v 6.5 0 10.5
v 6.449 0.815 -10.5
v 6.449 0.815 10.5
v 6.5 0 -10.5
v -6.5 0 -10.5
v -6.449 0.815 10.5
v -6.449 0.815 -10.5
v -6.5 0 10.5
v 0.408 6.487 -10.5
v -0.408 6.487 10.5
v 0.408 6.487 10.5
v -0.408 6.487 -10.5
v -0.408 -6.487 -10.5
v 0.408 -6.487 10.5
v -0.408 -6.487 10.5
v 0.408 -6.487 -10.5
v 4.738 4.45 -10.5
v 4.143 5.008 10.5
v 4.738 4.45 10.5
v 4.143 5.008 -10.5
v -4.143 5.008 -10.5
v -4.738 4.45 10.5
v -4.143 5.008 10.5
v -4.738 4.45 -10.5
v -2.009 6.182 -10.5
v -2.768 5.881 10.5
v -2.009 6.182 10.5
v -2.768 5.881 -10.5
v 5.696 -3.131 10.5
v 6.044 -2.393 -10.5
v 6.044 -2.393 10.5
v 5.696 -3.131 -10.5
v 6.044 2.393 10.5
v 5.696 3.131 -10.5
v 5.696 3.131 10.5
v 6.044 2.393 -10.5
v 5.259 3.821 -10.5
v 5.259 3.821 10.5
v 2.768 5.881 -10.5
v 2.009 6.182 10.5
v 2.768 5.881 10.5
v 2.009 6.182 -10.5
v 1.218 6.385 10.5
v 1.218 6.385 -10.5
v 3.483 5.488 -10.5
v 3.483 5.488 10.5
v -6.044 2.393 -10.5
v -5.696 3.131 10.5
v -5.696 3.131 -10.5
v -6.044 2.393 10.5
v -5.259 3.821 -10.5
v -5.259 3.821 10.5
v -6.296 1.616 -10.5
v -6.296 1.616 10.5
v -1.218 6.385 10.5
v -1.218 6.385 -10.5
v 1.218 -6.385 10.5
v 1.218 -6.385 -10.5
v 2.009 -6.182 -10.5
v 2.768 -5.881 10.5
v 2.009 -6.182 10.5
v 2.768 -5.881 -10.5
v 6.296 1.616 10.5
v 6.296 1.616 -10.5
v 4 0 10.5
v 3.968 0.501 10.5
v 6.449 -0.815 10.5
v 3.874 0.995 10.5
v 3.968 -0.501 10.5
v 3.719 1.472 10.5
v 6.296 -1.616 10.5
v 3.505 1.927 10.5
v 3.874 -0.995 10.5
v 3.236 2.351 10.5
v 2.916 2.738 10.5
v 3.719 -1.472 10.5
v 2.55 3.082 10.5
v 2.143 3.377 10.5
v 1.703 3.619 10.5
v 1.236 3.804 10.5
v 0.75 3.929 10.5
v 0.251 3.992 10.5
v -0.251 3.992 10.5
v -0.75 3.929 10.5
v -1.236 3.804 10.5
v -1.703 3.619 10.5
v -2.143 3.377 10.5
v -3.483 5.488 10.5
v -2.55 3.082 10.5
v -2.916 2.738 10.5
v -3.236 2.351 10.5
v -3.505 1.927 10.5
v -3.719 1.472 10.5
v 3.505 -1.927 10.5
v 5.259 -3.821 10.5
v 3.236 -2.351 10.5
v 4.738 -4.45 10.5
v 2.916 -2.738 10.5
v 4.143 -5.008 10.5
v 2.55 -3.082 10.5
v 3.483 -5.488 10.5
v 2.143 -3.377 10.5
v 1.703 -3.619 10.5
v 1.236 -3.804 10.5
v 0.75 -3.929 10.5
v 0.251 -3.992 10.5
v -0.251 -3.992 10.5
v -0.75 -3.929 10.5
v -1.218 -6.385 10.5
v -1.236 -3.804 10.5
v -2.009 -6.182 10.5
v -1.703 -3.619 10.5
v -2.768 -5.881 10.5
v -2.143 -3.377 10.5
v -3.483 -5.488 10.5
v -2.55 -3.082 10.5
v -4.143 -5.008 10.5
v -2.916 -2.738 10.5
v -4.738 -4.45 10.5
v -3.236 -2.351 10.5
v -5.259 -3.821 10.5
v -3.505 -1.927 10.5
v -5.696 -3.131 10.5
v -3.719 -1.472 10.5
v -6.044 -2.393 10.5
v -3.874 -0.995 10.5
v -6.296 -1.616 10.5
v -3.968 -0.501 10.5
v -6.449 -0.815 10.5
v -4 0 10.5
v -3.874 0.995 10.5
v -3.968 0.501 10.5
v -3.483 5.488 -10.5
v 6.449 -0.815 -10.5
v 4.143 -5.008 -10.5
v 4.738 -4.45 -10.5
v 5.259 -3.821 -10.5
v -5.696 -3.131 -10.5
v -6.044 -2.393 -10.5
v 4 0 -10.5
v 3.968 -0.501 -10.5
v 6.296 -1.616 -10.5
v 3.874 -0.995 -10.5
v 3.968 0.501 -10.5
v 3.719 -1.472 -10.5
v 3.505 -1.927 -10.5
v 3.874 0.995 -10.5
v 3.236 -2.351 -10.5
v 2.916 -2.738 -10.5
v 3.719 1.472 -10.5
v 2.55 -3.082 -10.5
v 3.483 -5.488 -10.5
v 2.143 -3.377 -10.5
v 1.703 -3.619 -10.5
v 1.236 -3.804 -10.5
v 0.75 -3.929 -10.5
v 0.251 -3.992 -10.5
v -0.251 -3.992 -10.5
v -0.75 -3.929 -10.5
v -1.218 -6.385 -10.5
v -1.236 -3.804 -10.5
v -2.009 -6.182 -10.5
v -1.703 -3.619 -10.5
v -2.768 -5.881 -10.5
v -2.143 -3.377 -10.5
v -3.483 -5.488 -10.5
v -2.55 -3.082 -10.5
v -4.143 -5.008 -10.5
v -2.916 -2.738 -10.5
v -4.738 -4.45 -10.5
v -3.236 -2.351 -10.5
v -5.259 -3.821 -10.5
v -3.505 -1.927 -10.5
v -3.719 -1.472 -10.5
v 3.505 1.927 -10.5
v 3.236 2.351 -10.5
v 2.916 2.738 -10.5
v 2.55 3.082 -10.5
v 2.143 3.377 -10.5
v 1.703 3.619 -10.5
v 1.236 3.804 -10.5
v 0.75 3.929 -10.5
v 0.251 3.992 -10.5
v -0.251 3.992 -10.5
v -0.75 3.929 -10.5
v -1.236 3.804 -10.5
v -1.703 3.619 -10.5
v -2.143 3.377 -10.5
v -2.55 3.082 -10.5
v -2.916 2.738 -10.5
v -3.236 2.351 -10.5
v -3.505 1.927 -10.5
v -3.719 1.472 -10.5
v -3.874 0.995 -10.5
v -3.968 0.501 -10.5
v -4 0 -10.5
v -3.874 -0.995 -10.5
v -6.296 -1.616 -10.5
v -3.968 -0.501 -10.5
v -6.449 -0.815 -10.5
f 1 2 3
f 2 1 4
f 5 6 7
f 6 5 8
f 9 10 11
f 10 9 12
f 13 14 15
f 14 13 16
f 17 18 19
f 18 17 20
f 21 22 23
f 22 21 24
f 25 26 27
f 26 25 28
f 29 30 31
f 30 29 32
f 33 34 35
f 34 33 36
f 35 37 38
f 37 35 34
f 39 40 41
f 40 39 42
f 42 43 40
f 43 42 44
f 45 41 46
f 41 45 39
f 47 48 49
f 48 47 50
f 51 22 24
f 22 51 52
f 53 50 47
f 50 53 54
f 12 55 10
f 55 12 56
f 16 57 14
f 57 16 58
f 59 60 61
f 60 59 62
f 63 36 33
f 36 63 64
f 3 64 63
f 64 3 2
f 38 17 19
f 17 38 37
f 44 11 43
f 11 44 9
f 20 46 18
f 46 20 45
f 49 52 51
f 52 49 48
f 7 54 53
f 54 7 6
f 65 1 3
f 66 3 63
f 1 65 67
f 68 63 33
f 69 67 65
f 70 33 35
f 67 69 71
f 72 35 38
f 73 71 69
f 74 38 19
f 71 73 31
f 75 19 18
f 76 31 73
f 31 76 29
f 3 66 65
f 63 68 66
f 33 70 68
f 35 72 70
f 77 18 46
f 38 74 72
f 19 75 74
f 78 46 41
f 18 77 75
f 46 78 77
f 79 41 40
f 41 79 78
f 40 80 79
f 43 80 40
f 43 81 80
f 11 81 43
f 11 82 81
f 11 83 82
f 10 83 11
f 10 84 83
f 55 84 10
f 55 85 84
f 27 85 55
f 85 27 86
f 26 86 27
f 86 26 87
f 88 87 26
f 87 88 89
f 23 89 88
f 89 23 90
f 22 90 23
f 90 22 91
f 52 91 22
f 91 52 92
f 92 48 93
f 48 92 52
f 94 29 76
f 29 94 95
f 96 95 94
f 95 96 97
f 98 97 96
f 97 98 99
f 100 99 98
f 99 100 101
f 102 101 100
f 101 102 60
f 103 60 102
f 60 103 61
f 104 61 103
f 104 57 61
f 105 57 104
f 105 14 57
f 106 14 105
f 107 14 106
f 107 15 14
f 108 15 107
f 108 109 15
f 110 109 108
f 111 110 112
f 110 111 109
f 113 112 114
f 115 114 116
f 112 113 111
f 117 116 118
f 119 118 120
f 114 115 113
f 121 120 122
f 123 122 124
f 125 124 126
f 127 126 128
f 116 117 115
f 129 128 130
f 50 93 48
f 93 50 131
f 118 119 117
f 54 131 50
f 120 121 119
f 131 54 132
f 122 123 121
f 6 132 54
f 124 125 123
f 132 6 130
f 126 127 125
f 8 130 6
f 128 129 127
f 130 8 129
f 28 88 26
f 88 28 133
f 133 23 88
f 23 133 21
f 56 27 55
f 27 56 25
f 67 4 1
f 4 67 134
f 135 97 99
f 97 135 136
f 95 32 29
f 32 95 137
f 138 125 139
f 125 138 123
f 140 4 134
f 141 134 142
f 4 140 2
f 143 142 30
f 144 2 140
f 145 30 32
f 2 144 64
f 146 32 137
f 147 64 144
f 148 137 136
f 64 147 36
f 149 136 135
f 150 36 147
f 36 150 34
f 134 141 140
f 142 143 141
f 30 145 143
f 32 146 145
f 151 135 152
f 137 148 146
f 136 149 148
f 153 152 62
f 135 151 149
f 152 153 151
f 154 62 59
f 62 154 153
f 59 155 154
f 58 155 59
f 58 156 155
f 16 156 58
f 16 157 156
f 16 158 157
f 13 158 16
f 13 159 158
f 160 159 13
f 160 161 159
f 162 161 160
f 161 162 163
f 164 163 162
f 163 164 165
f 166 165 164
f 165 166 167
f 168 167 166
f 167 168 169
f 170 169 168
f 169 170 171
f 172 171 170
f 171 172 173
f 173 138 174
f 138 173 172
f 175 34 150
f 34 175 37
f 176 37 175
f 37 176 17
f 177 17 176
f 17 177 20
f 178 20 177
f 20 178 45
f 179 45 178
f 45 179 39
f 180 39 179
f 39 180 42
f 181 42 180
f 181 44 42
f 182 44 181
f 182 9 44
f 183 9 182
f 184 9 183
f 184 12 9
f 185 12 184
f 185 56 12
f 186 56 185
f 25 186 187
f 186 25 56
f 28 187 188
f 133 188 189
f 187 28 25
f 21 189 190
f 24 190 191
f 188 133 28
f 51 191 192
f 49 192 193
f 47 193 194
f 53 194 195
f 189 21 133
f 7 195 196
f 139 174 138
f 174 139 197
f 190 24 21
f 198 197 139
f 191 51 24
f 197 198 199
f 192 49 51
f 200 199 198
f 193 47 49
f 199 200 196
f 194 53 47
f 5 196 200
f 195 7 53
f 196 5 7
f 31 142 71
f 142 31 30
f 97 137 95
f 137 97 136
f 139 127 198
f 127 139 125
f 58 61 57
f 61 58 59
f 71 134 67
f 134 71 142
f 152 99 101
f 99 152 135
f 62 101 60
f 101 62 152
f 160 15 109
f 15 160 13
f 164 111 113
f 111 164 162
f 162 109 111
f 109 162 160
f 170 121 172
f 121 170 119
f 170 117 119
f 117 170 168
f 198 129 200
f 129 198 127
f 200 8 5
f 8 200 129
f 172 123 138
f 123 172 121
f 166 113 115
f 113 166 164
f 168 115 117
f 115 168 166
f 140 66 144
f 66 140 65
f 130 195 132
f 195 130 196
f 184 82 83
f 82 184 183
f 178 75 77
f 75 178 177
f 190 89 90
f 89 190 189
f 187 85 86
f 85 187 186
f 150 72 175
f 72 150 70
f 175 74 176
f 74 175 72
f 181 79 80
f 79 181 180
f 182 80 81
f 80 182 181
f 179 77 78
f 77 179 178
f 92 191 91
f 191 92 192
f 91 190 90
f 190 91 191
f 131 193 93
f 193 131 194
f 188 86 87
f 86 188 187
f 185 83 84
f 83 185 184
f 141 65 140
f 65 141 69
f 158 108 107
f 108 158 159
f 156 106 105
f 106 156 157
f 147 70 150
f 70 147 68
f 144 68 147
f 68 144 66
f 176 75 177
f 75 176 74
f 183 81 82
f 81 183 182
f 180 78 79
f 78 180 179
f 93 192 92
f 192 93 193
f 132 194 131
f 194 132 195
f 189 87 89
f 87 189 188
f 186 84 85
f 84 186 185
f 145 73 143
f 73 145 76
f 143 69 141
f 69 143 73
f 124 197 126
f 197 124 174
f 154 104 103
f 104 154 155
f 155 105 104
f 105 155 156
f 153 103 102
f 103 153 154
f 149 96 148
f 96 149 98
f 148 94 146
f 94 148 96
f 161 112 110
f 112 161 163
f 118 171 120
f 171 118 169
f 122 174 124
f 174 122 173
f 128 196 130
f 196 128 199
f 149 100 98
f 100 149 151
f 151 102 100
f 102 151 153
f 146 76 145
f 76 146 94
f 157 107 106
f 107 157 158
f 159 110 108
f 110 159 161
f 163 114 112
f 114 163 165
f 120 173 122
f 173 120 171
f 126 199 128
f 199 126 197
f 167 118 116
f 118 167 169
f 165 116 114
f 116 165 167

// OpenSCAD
$fn = 50;


difference() {
	union() {
		translate(v = [0, 0, -10.5000000000]) {
			cylinder(h = 21, r = 6.5000000000);
		}
	}
	union() {
		translate(v = [0, 0, -100.0000000000]) {
			cylinder(h = 200, r = 4.0000000000);
		}
	}
}
